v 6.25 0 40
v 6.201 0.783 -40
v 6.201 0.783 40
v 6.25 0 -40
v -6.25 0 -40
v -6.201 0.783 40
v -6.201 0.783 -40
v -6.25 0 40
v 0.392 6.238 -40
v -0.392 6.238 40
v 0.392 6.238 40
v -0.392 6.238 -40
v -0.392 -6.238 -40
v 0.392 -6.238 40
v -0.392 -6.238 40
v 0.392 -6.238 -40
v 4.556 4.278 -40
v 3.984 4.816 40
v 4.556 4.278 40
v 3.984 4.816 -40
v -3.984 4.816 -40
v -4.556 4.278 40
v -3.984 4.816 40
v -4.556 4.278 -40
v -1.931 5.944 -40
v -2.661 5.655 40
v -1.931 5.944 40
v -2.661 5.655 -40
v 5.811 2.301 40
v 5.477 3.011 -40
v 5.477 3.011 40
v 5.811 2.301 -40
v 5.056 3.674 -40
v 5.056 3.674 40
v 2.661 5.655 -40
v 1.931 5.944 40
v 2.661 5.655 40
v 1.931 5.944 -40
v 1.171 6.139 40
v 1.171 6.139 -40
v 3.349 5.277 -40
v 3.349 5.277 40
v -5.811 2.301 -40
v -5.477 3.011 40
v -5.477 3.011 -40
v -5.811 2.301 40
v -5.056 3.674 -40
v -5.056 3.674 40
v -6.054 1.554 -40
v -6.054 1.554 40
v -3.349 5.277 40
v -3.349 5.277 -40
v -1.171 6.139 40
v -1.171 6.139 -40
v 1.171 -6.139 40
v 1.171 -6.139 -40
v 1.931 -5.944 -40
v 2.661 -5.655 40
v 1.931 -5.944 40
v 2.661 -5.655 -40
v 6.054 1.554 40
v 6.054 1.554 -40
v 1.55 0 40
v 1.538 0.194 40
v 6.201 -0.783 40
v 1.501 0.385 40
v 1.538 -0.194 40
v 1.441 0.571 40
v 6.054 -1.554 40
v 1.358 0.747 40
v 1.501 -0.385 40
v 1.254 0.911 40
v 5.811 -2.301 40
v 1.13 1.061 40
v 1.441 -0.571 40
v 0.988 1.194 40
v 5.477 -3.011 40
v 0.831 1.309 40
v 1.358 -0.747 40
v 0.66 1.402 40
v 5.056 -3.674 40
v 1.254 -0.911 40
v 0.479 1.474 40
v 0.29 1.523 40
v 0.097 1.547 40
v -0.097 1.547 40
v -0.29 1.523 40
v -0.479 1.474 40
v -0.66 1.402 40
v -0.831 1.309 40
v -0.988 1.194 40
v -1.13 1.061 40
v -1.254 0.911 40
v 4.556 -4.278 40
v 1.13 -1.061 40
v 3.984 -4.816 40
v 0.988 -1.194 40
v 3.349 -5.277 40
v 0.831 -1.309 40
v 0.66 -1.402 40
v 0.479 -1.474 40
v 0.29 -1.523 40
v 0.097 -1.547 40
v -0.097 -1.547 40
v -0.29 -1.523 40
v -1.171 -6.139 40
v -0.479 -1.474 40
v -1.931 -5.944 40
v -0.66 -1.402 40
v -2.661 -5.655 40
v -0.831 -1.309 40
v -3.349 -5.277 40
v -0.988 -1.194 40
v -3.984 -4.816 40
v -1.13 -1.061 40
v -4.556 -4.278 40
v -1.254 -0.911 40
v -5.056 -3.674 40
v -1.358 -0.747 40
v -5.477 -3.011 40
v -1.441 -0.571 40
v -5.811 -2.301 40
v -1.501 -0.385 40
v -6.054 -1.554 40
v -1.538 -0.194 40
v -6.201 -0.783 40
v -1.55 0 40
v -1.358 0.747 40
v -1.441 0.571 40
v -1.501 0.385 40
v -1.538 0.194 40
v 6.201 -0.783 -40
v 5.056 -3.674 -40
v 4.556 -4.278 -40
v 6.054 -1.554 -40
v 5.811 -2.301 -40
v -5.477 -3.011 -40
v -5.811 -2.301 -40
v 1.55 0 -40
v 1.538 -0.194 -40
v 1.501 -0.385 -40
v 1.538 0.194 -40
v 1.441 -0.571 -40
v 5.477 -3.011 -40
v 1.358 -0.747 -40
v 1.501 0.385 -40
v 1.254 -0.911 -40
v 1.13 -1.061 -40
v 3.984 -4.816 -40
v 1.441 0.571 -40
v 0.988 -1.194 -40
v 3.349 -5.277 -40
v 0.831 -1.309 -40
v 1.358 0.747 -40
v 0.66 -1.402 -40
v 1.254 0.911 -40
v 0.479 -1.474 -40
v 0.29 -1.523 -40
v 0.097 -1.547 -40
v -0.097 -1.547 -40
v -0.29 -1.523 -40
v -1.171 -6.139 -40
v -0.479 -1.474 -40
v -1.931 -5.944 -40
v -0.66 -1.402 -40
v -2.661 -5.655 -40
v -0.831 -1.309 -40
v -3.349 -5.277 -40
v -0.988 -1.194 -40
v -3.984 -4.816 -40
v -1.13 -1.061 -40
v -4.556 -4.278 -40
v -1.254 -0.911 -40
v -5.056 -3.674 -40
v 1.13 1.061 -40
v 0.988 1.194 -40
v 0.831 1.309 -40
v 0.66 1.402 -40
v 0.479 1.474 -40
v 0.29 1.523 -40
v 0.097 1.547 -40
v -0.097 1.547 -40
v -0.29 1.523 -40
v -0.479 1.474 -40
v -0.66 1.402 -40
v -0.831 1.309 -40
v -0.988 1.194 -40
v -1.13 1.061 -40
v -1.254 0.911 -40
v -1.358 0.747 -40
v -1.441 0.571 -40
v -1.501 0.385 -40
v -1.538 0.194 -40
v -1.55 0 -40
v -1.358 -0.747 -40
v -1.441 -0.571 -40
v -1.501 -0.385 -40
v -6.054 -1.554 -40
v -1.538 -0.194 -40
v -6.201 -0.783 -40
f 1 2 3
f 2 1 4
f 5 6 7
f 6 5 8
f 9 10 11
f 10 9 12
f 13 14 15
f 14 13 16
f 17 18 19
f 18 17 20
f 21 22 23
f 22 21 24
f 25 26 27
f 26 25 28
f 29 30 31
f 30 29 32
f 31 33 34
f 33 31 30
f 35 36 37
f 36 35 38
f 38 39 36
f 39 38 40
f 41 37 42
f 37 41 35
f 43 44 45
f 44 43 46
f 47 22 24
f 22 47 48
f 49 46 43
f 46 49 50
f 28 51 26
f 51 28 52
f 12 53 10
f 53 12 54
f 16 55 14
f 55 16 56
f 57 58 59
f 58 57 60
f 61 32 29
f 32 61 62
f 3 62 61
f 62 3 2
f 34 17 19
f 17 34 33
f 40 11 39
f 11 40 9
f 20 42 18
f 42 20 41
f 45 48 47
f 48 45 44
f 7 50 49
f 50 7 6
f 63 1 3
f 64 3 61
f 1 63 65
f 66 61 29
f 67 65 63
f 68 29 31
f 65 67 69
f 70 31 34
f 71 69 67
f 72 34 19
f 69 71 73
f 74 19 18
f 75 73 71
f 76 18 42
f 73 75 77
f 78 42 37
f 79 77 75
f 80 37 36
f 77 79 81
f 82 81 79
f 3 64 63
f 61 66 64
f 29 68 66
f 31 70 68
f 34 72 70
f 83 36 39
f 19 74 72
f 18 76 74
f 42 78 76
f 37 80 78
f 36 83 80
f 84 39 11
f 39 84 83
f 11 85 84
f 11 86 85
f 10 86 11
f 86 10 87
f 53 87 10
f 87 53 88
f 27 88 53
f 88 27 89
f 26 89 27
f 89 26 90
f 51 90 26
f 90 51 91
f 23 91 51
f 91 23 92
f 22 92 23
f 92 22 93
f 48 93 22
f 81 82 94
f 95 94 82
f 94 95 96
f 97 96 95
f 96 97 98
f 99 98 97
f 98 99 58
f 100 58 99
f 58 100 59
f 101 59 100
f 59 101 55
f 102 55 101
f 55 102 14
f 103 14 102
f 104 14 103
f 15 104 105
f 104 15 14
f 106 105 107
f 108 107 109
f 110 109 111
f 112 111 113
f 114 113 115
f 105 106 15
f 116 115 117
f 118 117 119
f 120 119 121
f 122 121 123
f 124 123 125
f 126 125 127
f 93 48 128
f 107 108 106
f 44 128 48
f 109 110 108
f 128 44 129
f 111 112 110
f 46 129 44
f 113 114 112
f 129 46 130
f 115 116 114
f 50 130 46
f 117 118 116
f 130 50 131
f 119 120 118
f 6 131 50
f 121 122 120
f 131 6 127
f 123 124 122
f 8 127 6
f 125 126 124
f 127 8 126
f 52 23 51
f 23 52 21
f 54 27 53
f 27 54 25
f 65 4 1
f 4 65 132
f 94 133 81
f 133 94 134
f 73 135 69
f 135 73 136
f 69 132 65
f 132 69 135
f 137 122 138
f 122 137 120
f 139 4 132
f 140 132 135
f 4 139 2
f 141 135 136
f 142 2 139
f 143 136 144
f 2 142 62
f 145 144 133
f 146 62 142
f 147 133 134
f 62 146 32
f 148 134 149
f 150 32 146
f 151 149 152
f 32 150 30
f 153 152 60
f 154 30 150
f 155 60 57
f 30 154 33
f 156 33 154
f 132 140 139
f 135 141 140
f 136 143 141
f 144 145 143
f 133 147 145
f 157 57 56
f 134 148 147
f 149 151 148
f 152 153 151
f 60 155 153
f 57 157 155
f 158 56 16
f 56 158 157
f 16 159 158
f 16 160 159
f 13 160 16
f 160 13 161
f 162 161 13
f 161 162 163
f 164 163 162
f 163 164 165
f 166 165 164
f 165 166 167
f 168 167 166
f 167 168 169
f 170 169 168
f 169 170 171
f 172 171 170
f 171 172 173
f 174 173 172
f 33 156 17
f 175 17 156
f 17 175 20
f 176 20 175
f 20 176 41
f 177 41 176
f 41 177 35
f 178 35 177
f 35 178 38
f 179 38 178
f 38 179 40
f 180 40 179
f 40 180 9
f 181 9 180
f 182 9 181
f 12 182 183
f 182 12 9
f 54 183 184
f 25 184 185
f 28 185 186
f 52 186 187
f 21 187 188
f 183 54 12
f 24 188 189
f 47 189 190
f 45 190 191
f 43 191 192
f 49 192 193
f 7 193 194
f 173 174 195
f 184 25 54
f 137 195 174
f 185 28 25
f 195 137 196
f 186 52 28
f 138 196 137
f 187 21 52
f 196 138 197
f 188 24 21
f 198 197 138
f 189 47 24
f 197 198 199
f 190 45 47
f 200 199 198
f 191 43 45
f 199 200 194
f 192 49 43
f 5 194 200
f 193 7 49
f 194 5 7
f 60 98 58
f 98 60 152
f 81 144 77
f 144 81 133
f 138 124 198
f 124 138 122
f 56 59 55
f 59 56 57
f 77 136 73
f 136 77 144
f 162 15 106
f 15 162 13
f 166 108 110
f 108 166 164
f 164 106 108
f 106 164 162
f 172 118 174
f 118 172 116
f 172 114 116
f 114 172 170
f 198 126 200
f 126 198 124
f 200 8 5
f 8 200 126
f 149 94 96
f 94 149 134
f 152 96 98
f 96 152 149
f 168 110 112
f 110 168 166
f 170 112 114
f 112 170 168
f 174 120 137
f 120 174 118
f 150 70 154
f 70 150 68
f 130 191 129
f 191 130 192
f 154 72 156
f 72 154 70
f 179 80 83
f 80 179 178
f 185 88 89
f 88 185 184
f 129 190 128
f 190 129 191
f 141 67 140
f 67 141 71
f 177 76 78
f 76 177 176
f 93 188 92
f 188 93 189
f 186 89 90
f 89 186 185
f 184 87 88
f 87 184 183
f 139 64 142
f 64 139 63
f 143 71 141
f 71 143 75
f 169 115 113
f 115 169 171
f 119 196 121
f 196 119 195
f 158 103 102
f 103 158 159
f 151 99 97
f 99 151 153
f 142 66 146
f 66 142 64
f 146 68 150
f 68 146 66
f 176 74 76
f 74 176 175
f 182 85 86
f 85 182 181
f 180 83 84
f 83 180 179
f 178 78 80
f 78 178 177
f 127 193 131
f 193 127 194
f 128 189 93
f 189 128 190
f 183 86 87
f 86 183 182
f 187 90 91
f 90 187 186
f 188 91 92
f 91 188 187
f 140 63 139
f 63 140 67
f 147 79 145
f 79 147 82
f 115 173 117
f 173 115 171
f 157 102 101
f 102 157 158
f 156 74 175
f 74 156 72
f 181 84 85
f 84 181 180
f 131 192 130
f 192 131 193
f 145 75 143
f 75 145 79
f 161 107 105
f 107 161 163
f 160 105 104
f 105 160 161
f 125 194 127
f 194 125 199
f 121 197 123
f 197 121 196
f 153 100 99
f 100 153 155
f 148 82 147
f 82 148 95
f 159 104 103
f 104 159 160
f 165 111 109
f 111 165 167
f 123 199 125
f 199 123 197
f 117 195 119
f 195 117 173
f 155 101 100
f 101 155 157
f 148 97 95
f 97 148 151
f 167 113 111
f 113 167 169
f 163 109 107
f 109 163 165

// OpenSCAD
$fn = 50;


difference() {
	union() {
		translate(v = [0, 0, -40.0000000000]) {
			cylinder(h = 80, r = 6.2500000000);
		}
	}
	union() {
		translate(v = [0, 0, -100.0000000000]) {
			cylinder(h = 200, r = 1.5500000000);
		}
	}
}
